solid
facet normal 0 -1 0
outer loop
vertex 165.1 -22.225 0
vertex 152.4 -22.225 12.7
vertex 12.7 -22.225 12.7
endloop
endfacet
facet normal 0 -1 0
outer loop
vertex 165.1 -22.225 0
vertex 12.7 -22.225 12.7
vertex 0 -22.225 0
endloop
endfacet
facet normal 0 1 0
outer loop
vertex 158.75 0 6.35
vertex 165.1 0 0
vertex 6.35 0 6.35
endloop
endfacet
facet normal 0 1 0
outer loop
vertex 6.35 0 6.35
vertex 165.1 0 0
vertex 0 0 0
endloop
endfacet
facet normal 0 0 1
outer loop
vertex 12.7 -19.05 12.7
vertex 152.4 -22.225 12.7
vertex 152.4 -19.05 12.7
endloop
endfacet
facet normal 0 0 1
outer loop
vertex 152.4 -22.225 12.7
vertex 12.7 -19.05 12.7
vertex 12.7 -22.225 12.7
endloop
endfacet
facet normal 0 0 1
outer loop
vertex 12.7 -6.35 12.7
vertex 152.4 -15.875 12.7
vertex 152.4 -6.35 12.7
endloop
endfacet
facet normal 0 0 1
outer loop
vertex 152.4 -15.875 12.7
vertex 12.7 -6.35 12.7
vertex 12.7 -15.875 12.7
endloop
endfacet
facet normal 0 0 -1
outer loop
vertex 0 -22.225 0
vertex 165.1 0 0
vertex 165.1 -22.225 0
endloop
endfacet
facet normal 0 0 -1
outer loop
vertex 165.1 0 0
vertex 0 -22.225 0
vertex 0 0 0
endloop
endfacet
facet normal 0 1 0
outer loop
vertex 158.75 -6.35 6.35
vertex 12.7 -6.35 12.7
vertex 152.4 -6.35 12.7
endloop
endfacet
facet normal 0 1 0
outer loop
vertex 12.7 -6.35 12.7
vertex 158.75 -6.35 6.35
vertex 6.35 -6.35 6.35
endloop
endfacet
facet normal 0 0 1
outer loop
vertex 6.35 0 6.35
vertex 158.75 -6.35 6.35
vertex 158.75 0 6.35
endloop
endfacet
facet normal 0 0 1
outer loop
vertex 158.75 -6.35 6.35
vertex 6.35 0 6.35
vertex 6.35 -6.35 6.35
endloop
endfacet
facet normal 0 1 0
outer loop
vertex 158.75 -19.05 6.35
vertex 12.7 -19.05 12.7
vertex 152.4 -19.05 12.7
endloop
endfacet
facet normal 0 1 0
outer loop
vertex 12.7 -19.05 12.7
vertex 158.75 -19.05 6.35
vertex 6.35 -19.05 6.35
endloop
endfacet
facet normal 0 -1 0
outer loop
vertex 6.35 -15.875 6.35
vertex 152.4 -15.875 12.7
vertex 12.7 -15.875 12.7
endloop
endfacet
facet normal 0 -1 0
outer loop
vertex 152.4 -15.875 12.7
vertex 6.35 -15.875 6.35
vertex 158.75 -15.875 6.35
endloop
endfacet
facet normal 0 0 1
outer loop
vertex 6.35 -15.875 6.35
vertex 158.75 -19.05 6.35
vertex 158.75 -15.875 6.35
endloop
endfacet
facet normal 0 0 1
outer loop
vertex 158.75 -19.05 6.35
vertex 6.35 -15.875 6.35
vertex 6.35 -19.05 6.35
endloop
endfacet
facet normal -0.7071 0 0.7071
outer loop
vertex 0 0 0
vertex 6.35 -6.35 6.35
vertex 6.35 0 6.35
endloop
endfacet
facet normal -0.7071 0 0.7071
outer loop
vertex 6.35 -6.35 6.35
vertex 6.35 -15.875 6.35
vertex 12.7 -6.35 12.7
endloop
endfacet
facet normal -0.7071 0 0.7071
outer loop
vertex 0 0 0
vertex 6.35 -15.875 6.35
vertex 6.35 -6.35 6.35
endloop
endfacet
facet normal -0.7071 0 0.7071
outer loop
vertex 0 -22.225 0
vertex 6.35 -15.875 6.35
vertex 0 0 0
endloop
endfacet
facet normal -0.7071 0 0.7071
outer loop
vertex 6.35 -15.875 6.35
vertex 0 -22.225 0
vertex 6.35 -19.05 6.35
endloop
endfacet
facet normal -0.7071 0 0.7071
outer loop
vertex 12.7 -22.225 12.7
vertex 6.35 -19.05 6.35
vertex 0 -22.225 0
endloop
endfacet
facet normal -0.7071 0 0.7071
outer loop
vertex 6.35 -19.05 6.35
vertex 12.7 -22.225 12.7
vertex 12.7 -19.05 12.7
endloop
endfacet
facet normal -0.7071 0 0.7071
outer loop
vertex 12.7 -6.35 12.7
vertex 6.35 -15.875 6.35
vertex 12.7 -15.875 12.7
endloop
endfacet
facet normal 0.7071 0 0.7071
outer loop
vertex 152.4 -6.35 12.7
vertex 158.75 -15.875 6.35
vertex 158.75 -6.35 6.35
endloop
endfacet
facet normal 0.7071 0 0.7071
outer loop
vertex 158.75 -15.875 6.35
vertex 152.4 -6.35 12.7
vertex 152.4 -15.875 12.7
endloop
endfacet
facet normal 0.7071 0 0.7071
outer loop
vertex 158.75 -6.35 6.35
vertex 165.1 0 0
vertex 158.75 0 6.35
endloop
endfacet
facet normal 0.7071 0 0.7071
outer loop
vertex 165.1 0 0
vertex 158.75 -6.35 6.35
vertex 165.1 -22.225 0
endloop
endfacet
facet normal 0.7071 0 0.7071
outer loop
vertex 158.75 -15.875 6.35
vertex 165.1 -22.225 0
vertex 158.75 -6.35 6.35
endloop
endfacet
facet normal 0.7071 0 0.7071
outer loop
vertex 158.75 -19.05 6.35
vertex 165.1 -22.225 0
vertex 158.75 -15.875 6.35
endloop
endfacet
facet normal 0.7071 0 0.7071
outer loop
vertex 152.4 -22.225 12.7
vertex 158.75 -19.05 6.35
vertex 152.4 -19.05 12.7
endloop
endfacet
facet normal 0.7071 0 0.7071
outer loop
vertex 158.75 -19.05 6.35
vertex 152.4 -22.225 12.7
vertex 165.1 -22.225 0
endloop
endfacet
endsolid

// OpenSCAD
// file: frame-module.scad
use <funcs.scad>;

module frame_bar(item_width, item_thickness, frame_width, pane_thickness, pane_inset_x, pane_inset_z, backing_thickness, backing_inset) {
    total_width = item_width + 2*frame_width;
    total_thickness = backing_thickness + item_thickness + pane_thickness + pane_inset_z;
    difference() {
        cube([total_width, frame_width, total_thickness]);
        // backing
        translate([-0.1, backing_inset, -0.1])
            cube([total_width + 0.2, frame_width, backing_thickness + 0.1]);
        // pane
        translate([-0.1, pane_inset_x, backing_thickness + item_thickness])
            cube([total_width + 0.2, frame_width, pane_thickness]);
        // bottom corner
        translate([-0.1, -0.1, -0.1])
            right_triangle(frame_width + 0.2, frame_width + 0.2, total_thickness + 0.2);
        // top corner
        translate([total_width + 0.1, -0.1, -0.1])
            right_triangle(-frame_width - 0.2, frame_width + 0.2, total_thickness + 0.2);
    }
}

// testing
frame_bar(inches(6.375), inches(0.375), inches(0.5), inches(0.125), inches(0.25), inches(0.125), inches(0.25), inches(0.25));
translate([0, inches(1.5), 0])
    frame_bar(inches(4.125), inches(0.375), inches(0.5), inches(0.125), inches(0.25), inches(0.125), inches(0.25), inches(0.25));
// file: funcs.scad
include <MCAD/constants.scad>;

function inches(n) = n*mm_per_inch;

module right_triangle(width, height, thickness) {
    linear_extrude(height=thickness, center = false)
        polygon([[0, 0], [0, height], [width, height]]);
}

// testing
right_triangle(20, 30, 10);
// main file
use <funcs.scad>;
use <frame-module.scad>;

rotate([90, 0, 0])
frame_bar(inches(5.5), inches(0.375), inches(0.5), inches(0.125), inches(0.25), inches(0.125), inches(0.25), inches(0.25));
